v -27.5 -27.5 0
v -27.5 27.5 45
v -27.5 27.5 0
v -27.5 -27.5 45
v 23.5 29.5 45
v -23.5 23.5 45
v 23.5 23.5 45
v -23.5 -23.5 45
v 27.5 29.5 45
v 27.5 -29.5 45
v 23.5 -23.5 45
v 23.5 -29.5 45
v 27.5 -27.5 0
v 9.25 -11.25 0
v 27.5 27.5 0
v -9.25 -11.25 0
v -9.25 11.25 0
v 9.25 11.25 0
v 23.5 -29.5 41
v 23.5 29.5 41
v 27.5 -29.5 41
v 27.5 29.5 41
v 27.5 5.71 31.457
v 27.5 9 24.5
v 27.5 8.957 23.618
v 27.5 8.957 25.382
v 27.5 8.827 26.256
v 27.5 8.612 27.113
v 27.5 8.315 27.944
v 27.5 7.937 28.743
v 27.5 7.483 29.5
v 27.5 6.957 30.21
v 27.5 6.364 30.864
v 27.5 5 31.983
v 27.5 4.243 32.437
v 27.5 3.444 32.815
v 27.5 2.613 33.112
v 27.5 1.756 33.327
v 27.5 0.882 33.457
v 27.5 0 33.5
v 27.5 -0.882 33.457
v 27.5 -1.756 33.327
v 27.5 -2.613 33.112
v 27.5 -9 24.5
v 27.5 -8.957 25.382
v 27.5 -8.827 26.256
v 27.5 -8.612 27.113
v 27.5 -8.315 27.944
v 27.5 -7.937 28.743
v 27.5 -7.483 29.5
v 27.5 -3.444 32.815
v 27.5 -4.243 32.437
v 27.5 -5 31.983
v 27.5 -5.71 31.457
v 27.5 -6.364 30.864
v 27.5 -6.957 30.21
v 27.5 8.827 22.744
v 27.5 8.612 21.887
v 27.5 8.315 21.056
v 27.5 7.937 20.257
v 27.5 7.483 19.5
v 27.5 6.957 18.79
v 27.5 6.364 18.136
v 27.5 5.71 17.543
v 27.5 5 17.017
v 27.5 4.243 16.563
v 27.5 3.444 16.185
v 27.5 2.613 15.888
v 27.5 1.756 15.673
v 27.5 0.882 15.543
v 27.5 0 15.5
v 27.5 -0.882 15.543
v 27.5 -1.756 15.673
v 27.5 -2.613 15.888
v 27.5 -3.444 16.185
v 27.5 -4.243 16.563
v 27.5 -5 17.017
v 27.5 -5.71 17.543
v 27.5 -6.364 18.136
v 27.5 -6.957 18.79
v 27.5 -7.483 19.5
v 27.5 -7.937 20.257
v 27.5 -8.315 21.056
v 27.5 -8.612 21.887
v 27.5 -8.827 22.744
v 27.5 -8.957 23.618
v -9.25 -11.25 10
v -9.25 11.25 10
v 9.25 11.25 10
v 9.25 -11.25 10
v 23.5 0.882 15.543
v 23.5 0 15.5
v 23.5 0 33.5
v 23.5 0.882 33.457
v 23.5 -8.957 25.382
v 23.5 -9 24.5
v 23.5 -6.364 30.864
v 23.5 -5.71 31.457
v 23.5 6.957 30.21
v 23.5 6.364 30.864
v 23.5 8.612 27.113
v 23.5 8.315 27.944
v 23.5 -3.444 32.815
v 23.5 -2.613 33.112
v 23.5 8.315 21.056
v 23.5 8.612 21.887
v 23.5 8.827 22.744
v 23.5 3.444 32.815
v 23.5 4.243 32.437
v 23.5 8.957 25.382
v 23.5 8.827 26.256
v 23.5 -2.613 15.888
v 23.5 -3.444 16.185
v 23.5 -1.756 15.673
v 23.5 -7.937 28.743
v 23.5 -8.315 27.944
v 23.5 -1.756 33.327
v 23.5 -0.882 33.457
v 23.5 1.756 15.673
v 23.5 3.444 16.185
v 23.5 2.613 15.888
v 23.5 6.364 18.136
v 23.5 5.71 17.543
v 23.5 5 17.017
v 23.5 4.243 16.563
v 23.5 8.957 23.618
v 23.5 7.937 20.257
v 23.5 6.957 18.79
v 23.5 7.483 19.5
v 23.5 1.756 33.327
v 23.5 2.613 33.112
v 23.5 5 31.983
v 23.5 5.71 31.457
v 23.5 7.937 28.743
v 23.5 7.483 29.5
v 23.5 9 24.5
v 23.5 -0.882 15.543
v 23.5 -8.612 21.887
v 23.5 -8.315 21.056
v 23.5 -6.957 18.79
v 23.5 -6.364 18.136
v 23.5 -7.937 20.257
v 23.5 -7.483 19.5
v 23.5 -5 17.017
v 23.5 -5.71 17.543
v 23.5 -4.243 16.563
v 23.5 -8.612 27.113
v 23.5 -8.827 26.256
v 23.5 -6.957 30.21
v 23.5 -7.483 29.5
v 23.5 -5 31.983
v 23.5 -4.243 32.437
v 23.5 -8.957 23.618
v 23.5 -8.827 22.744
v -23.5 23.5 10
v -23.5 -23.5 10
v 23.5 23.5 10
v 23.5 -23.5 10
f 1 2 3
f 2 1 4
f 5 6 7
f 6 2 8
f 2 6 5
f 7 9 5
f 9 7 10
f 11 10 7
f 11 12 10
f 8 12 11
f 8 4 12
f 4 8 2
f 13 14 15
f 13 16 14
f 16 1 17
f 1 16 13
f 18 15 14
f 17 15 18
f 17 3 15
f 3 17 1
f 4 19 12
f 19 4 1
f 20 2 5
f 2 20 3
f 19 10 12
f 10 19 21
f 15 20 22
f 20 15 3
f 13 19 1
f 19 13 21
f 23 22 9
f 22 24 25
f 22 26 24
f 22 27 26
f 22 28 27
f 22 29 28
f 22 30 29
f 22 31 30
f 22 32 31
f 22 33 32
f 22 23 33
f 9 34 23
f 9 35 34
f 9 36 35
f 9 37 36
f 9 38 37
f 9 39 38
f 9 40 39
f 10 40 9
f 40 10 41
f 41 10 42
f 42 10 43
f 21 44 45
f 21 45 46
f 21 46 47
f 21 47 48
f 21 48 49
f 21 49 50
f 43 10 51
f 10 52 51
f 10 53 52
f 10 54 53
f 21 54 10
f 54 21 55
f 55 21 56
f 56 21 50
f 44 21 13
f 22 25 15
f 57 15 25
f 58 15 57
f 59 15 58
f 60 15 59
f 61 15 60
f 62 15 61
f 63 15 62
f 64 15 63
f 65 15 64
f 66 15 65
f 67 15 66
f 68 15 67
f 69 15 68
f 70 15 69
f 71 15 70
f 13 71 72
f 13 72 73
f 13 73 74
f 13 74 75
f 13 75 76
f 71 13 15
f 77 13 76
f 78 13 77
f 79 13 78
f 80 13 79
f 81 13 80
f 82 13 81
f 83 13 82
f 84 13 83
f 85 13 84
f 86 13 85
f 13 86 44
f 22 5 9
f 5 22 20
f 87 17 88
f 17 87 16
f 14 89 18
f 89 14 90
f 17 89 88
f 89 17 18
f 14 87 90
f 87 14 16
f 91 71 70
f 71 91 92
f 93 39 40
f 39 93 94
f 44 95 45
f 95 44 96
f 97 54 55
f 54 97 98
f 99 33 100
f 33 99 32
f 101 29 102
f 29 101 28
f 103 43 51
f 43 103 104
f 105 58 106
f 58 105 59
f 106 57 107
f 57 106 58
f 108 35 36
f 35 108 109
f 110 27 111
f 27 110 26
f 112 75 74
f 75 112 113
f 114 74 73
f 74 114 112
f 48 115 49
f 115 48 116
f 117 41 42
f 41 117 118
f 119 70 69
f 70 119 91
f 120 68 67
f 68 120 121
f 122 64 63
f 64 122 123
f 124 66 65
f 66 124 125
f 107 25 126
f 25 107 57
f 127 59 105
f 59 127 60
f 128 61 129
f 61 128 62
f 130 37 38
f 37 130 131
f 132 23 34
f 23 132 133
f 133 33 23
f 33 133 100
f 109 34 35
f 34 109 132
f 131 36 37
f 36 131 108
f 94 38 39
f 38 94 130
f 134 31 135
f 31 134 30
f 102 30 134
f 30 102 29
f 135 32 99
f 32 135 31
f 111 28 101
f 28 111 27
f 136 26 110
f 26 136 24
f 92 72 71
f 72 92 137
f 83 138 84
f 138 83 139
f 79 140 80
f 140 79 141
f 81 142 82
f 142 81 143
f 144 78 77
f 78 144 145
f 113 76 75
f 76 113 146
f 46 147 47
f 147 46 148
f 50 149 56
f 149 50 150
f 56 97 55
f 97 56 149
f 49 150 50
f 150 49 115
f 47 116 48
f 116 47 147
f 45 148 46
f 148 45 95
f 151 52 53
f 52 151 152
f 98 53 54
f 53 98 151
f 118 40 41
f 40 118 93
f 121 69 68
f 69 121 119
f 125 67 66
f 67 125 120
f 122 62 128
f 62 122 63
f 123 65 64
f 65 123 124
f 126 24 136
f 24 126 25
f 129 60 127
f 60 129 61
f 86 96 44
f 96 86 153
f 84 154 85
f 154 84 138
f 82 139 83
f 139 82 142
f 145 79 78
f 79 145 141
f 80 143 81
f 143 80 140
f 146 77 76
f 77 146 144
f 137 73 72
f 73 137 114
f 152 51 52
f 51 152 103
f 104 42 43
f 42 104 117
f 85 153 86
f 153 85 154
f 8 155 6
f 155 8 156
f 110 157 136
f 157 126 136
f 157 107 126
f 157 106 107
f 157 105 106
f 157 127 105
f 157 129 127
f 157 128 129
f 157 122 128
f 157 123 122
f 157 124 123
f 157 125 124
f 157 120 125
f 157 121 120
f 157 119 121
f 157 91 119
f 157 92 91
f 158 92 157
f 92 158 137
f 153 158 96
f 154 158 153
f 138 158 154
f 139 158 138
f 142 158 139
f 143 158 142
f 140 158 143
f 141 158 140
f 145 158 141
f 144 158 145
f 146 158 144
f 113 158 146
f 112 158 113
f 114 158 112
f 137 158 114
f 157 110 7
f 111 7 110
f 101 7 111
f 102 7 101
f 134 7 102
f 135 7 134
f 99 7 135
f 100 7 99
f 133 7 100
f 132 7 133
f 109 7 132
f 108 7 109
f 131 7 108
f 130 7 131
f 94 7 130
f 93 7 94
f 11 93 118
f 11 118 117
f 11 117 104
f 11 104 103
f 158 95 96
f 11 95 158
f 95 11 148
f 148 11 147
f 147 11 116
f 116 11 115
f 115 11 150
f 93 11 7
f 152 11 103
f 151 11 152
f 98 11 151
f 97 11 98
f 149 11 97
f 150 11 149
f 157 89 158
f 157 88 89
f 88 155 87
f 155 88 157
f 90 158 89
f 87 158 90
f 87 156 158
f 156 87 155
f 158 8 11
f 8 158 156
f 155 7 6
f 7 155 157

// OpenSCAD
// =======================================
// SCOUT Camera Head YELLOW V1
// Standalone Test Version
// Rotating camera housing
// =======================================


$fn = 64;


// ===============================
// DIMENSIONS
// ===============================

// Camera shell
camera_head_width = 55;
camera_head_depth = 55;
camera_head_height = 45;


// Camera lens
camera_aperture_diameter = 18;


// Neck mount
head_mount_neck_width = 22;
head_mount_neck_depth = 18;
head_mount_neck_height = 18;


// Wiring
head_wire_pass_diameter = 8;


// Assembly clearance
sliding_clearance = 0.5;



// ===============================
// MODEL
// ===============================


module SCOUT_Camera_Head_YELLOW_V1() {

    difference() {


        // Main external camera housing
        hull() {

            translate([
                0,
                0,
                camera_head_height / 2
            ])
            cube([
                camera_head_depth,
                camera_head_width,
                camera_head_height
            ], center=true);



            // top camera bump
            translate([
                camera_head_depth / 2 - 2,
                0,
                camera_head_height - 2
            ])
            cube([
                4,
                camera_head_width + 4,
                4
            ], center=true);

        }



        // Neck socket

        translate([
            0,
            0,
            head_mount_neck_height / 2 - 0.1
        ])

        cube([
            head_mount_neck_depth + sliding_clearance,
            head_mount_neck_width + sliding_clearance,
            head_mount_neck_height
        ], center=true);



        // Camera lens hole

        translate([
            camera_head_depth / 2 + 1,
            0,
            camera_head_height / 2 + 2
        ])

        rotate([
            0,
            90,
            0
        ])

        cylinder(
            d=camera_aperture_diameter,
            h=25,
            center=true
        );



        // Electronics cavity

        translate([
            0,
            0,
            camera_head_height / 2 + 5
        ])

        cube([
            camera_head_depth - 8,
            camera_head_width - 8,
            camera_head_height - 10
        ], center=true);



        // Wire channel

        translate([
            0,
            0,
            camera_head_height / 2
        ])

        cylinder(
            d=head_wire_pass_diameter,
            h=camera_head_height + 2,
            center=true
        );

    }
}



SCOUT_Camera_Head_YELLOW_V1();
